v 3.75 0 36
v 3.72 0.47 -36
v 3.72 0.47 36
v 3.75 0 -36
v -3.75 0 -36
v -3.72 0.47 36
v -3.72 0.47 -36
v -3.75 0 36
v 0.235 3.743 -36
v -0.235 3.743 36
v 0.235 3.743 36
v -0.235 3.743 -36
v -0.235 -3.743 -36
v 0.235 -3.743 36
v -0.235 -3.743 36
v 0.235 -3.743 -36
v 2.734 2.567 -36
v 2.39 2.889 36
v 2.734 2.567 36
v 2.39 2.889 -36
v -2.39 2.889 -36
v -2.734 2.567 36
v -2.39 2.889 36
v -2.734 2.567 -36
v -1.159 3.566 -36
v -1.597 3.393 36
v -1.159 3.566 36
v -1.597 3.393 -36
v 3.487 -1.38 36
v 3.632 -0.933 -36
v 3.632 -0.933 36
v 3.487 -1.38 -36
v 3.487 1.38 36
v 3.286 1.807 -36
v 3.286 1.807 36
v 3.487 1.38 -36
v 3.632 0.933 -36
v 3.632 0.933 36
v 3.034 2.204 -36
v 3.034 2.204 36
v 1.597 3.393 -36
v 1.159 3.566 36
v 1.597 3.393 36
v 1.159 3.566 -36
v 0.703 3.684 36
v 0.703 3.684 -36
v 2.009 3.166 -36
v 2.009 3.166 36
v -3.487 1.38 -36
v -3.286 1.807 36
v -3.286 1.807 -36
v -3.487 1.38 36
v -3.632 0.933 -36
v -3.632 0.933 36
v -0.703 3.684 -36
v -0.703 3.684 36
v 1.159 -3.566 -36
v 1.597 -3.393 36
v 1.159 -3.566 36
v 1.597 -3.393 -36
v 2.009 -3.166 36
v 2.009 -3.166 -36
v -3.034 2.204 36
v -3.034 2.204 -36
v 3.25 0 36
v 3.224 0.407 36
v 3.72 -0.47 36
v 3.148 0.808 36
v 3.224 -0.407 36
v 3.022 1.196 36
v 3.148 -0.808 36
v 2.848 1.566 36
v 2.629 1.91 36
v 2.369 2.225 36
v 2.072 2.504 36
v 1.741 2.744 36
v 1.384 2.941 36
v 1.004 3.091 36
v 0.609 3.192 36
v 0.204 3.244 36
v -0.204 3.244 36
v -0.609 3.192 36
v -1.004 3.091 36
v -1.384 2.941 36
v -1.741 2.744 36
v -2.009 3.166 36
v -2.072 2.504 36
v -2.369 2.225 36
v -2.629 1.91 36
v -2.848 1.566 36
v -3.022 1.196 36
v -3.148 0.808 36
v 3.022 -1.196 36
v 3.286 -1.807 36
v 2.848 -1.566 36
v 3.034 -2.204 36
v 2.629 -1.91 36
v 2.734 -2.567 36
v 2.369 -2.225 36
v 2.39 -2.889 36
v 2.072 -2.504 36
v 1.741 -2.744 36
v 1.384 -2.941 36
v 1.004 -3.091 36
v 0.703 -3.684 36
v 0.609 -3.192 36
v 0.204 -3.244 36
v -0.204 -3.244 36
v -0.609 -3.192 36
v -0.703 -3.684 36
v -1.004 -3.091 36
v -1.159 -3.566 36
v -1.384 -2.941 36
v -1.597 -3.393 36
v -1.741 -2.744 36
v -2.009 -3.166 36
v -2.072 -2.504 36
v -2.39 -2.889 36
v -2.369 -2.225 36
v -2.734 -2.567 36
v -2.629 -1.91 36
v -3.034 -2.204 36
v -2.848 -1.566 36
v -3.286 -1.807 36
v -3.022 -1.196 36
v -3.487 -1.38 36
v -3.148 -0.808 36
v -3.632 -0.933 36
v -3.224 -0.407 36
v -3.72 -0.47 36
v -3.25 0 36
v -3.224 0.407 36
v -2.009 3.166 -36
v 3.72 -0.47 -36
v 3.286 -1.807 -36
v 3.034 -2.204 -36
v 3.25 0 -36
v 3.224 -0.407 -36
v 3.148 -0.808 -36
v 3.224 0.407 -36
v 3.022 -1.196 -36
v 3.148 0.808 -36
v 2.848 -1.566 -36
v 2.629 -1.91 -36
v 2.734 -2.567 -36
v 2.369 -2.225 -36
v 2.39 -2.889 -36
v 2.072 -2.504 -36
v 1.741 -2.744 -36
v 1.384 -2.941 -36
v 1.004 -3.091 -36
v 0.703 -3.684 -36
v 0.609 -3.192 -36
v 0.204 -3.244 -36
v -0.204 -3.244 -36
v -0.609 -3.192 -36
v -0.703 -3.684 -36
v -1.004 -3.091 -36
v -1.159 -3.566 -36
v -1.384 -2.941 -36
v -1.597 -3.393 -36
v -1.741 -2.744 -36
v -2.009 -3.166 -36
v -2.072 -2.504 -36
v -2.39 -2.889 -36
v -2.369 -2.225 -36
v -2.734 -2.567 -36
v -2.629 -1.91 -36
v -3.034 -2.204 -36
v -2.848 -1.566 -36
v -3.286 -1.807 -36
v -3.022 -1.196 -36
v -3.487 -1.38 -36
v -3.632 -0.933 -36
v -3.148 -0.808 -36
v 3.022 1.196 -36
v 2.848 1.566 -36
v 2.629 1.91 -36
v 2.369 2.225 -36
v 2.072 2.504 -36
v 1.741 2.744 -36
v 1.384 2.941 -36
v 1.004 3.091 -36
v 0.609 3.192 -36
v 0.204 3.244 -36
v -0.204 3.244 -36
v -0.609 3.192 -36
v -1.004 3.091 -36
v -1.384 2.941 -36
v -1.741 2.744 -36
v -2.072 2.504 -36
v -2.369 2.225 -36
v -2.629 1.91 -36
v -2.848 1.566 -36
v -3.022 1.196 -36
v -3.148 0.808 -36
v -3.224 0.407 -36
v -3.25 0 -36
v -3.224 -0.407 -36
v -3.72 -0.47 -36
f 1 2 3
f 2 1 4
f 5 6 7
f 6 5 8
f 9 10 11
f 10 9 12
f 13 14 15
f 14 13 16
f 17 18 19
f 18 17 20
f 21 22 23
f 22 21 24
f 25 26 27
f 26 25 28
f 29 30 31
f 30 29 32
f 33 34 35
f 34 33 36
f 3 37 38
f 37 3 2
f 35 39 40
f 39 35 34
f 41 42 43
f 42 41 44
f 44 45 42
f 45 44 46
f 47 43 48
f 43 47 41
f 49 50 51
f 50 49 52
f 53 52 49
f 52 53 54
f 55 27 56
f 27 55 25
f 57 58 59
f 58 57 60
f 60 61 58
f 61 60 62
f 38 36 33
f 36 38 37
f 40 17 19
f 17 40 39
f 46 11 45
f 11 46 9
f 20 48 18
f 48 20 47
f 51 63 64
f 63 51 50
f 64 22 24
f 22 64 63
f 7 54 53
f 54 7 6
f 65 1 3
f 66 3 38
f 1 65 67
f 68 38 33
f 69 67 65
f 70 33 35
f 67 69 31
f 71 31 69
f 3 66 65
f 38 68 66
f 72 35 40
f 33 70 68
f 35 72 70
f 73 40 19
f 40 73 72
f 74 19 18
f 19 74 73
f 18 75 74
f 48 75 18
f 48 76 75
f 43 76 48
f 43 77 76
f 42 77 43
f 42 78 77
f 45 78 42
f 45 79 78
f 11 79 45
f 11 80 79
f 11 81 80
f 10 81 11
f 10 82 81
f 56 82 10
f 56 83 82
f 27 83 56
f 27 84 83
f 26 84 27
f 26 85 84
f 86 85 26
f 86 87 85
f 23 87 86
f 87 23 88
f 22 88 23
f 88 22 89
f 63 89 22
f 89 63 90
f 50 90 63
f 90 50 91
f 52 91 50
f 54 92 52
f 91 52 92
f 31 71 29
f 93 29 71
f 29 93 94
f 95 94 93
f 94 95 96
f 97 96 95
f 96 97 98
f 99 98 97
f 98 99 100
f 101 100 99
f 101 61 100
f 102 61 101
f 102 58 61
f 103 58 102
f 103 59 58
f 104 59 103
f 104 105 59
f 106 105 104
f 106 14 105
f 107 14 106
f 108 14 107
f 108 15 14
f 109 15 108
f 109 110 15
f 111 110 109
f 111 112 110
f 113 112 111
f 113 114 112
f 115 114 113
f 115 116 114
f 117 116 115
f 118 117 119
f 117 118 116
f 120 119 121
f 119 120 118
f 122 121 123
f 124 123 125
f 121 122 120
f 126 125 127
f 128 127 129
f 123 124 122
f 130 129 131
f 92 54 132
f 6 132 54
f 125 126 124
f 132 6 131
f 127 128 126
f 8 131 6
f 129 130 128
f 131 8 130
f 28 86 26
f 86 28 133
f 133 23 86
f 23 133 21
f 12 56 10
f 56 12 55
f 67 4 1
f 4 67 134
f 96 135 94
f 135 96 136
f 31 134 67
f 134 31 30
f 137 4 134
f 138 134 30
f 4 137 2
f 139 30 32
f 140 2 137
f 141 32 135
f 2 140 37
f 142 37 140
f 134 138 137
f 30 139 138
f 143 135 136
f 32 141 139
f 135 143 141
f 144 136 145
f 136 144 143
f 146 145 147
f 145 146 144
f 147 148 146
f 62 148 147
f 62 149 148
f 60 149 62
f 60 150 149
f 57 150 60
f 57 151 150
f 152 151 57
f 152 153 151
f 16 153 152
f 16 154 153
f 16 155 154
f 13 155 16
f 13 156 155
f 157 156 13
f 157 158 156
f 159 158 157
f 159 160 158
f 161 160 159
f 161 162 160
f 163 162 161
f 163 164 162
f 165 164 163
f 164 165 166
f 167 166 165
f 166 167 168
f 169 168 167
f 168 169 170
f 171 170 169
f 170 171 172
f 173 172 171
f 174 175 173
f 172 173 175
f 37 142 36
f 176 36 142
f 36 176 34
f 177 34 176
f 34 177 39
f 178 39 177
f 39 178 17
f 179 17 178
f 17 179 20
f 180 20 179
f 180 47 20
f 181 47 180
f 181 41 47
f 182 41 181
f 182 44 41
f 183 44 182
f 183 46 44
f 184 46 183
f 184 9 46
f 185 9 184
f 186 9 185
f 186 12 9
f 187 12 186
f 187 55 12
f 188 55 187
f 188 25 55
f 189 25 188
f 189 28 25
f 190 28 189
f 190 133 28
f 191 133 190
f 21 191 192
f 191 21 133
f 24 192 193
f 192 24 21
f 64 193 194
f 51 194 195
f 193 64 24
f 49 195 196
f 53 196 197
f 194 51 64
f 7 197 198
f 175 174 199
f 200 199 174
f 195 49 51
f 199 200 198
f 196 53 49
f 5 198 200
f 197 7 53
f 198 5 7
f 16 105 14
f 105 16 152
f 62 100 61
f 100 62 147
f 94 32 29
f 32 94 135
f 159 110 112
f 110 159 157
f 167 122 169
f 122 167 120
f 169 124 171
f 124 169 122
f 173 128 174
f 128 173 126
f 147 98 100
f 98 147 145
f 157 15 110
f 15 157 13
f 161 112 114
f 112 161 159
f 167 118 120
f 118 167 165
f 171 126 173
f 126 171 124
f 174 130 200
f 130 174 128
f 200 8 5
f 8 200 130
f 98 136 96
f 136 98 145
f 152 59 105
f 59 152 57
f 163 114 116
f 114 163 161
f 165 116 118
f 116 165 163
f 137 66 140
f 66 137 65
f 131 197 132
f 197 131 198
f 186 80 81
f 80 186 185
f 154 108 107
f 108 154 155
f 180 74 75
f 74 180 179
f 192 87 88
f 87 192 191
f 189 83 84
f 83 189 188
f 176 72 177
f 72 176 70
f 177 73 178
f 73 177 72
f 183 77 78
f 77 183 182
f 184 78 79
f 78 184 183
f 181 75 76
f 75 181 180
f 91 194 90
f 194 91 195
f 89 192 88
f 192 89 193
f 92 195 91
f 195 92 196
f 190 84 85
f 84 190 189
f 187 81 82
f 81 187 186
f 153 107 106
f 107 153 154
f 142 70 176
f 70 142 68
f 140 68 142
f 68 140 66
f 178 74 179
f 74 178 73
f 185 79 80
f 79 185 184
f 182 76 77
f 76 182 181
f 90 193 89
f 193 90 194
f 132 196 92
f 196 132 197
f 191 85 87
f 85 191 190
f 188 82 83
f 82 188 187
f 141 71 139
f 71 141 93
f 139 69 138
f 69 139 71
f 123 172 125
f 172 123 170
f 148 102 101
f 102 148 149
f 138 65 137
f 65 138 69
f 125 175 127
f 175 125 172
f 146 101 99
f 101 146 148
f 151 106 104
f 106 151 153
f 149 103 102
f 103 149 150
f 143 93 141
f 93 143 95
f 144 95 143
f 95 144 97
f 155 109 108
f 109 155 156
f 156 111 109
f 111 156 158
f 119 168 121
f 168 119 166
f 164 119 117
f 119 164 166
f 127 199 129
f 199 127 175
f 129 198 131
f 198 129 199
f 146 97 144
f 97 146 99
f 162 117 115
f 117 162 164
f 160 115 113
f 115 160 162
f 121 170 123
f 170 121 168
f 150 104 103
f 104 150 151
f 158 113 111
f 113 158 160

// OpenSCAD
$fn = 50;


difference() {
	union() {
		translate(v = [0, 0, -36.0000000000]) {
			cylinder(h = 72, r = 3.7500000000);
		}
	}
	union() {
		translate(v = [0, 0, -100.0000000000]) {
			cylinder(h = 200, r = 3.2500000000);
		}
	}
}
